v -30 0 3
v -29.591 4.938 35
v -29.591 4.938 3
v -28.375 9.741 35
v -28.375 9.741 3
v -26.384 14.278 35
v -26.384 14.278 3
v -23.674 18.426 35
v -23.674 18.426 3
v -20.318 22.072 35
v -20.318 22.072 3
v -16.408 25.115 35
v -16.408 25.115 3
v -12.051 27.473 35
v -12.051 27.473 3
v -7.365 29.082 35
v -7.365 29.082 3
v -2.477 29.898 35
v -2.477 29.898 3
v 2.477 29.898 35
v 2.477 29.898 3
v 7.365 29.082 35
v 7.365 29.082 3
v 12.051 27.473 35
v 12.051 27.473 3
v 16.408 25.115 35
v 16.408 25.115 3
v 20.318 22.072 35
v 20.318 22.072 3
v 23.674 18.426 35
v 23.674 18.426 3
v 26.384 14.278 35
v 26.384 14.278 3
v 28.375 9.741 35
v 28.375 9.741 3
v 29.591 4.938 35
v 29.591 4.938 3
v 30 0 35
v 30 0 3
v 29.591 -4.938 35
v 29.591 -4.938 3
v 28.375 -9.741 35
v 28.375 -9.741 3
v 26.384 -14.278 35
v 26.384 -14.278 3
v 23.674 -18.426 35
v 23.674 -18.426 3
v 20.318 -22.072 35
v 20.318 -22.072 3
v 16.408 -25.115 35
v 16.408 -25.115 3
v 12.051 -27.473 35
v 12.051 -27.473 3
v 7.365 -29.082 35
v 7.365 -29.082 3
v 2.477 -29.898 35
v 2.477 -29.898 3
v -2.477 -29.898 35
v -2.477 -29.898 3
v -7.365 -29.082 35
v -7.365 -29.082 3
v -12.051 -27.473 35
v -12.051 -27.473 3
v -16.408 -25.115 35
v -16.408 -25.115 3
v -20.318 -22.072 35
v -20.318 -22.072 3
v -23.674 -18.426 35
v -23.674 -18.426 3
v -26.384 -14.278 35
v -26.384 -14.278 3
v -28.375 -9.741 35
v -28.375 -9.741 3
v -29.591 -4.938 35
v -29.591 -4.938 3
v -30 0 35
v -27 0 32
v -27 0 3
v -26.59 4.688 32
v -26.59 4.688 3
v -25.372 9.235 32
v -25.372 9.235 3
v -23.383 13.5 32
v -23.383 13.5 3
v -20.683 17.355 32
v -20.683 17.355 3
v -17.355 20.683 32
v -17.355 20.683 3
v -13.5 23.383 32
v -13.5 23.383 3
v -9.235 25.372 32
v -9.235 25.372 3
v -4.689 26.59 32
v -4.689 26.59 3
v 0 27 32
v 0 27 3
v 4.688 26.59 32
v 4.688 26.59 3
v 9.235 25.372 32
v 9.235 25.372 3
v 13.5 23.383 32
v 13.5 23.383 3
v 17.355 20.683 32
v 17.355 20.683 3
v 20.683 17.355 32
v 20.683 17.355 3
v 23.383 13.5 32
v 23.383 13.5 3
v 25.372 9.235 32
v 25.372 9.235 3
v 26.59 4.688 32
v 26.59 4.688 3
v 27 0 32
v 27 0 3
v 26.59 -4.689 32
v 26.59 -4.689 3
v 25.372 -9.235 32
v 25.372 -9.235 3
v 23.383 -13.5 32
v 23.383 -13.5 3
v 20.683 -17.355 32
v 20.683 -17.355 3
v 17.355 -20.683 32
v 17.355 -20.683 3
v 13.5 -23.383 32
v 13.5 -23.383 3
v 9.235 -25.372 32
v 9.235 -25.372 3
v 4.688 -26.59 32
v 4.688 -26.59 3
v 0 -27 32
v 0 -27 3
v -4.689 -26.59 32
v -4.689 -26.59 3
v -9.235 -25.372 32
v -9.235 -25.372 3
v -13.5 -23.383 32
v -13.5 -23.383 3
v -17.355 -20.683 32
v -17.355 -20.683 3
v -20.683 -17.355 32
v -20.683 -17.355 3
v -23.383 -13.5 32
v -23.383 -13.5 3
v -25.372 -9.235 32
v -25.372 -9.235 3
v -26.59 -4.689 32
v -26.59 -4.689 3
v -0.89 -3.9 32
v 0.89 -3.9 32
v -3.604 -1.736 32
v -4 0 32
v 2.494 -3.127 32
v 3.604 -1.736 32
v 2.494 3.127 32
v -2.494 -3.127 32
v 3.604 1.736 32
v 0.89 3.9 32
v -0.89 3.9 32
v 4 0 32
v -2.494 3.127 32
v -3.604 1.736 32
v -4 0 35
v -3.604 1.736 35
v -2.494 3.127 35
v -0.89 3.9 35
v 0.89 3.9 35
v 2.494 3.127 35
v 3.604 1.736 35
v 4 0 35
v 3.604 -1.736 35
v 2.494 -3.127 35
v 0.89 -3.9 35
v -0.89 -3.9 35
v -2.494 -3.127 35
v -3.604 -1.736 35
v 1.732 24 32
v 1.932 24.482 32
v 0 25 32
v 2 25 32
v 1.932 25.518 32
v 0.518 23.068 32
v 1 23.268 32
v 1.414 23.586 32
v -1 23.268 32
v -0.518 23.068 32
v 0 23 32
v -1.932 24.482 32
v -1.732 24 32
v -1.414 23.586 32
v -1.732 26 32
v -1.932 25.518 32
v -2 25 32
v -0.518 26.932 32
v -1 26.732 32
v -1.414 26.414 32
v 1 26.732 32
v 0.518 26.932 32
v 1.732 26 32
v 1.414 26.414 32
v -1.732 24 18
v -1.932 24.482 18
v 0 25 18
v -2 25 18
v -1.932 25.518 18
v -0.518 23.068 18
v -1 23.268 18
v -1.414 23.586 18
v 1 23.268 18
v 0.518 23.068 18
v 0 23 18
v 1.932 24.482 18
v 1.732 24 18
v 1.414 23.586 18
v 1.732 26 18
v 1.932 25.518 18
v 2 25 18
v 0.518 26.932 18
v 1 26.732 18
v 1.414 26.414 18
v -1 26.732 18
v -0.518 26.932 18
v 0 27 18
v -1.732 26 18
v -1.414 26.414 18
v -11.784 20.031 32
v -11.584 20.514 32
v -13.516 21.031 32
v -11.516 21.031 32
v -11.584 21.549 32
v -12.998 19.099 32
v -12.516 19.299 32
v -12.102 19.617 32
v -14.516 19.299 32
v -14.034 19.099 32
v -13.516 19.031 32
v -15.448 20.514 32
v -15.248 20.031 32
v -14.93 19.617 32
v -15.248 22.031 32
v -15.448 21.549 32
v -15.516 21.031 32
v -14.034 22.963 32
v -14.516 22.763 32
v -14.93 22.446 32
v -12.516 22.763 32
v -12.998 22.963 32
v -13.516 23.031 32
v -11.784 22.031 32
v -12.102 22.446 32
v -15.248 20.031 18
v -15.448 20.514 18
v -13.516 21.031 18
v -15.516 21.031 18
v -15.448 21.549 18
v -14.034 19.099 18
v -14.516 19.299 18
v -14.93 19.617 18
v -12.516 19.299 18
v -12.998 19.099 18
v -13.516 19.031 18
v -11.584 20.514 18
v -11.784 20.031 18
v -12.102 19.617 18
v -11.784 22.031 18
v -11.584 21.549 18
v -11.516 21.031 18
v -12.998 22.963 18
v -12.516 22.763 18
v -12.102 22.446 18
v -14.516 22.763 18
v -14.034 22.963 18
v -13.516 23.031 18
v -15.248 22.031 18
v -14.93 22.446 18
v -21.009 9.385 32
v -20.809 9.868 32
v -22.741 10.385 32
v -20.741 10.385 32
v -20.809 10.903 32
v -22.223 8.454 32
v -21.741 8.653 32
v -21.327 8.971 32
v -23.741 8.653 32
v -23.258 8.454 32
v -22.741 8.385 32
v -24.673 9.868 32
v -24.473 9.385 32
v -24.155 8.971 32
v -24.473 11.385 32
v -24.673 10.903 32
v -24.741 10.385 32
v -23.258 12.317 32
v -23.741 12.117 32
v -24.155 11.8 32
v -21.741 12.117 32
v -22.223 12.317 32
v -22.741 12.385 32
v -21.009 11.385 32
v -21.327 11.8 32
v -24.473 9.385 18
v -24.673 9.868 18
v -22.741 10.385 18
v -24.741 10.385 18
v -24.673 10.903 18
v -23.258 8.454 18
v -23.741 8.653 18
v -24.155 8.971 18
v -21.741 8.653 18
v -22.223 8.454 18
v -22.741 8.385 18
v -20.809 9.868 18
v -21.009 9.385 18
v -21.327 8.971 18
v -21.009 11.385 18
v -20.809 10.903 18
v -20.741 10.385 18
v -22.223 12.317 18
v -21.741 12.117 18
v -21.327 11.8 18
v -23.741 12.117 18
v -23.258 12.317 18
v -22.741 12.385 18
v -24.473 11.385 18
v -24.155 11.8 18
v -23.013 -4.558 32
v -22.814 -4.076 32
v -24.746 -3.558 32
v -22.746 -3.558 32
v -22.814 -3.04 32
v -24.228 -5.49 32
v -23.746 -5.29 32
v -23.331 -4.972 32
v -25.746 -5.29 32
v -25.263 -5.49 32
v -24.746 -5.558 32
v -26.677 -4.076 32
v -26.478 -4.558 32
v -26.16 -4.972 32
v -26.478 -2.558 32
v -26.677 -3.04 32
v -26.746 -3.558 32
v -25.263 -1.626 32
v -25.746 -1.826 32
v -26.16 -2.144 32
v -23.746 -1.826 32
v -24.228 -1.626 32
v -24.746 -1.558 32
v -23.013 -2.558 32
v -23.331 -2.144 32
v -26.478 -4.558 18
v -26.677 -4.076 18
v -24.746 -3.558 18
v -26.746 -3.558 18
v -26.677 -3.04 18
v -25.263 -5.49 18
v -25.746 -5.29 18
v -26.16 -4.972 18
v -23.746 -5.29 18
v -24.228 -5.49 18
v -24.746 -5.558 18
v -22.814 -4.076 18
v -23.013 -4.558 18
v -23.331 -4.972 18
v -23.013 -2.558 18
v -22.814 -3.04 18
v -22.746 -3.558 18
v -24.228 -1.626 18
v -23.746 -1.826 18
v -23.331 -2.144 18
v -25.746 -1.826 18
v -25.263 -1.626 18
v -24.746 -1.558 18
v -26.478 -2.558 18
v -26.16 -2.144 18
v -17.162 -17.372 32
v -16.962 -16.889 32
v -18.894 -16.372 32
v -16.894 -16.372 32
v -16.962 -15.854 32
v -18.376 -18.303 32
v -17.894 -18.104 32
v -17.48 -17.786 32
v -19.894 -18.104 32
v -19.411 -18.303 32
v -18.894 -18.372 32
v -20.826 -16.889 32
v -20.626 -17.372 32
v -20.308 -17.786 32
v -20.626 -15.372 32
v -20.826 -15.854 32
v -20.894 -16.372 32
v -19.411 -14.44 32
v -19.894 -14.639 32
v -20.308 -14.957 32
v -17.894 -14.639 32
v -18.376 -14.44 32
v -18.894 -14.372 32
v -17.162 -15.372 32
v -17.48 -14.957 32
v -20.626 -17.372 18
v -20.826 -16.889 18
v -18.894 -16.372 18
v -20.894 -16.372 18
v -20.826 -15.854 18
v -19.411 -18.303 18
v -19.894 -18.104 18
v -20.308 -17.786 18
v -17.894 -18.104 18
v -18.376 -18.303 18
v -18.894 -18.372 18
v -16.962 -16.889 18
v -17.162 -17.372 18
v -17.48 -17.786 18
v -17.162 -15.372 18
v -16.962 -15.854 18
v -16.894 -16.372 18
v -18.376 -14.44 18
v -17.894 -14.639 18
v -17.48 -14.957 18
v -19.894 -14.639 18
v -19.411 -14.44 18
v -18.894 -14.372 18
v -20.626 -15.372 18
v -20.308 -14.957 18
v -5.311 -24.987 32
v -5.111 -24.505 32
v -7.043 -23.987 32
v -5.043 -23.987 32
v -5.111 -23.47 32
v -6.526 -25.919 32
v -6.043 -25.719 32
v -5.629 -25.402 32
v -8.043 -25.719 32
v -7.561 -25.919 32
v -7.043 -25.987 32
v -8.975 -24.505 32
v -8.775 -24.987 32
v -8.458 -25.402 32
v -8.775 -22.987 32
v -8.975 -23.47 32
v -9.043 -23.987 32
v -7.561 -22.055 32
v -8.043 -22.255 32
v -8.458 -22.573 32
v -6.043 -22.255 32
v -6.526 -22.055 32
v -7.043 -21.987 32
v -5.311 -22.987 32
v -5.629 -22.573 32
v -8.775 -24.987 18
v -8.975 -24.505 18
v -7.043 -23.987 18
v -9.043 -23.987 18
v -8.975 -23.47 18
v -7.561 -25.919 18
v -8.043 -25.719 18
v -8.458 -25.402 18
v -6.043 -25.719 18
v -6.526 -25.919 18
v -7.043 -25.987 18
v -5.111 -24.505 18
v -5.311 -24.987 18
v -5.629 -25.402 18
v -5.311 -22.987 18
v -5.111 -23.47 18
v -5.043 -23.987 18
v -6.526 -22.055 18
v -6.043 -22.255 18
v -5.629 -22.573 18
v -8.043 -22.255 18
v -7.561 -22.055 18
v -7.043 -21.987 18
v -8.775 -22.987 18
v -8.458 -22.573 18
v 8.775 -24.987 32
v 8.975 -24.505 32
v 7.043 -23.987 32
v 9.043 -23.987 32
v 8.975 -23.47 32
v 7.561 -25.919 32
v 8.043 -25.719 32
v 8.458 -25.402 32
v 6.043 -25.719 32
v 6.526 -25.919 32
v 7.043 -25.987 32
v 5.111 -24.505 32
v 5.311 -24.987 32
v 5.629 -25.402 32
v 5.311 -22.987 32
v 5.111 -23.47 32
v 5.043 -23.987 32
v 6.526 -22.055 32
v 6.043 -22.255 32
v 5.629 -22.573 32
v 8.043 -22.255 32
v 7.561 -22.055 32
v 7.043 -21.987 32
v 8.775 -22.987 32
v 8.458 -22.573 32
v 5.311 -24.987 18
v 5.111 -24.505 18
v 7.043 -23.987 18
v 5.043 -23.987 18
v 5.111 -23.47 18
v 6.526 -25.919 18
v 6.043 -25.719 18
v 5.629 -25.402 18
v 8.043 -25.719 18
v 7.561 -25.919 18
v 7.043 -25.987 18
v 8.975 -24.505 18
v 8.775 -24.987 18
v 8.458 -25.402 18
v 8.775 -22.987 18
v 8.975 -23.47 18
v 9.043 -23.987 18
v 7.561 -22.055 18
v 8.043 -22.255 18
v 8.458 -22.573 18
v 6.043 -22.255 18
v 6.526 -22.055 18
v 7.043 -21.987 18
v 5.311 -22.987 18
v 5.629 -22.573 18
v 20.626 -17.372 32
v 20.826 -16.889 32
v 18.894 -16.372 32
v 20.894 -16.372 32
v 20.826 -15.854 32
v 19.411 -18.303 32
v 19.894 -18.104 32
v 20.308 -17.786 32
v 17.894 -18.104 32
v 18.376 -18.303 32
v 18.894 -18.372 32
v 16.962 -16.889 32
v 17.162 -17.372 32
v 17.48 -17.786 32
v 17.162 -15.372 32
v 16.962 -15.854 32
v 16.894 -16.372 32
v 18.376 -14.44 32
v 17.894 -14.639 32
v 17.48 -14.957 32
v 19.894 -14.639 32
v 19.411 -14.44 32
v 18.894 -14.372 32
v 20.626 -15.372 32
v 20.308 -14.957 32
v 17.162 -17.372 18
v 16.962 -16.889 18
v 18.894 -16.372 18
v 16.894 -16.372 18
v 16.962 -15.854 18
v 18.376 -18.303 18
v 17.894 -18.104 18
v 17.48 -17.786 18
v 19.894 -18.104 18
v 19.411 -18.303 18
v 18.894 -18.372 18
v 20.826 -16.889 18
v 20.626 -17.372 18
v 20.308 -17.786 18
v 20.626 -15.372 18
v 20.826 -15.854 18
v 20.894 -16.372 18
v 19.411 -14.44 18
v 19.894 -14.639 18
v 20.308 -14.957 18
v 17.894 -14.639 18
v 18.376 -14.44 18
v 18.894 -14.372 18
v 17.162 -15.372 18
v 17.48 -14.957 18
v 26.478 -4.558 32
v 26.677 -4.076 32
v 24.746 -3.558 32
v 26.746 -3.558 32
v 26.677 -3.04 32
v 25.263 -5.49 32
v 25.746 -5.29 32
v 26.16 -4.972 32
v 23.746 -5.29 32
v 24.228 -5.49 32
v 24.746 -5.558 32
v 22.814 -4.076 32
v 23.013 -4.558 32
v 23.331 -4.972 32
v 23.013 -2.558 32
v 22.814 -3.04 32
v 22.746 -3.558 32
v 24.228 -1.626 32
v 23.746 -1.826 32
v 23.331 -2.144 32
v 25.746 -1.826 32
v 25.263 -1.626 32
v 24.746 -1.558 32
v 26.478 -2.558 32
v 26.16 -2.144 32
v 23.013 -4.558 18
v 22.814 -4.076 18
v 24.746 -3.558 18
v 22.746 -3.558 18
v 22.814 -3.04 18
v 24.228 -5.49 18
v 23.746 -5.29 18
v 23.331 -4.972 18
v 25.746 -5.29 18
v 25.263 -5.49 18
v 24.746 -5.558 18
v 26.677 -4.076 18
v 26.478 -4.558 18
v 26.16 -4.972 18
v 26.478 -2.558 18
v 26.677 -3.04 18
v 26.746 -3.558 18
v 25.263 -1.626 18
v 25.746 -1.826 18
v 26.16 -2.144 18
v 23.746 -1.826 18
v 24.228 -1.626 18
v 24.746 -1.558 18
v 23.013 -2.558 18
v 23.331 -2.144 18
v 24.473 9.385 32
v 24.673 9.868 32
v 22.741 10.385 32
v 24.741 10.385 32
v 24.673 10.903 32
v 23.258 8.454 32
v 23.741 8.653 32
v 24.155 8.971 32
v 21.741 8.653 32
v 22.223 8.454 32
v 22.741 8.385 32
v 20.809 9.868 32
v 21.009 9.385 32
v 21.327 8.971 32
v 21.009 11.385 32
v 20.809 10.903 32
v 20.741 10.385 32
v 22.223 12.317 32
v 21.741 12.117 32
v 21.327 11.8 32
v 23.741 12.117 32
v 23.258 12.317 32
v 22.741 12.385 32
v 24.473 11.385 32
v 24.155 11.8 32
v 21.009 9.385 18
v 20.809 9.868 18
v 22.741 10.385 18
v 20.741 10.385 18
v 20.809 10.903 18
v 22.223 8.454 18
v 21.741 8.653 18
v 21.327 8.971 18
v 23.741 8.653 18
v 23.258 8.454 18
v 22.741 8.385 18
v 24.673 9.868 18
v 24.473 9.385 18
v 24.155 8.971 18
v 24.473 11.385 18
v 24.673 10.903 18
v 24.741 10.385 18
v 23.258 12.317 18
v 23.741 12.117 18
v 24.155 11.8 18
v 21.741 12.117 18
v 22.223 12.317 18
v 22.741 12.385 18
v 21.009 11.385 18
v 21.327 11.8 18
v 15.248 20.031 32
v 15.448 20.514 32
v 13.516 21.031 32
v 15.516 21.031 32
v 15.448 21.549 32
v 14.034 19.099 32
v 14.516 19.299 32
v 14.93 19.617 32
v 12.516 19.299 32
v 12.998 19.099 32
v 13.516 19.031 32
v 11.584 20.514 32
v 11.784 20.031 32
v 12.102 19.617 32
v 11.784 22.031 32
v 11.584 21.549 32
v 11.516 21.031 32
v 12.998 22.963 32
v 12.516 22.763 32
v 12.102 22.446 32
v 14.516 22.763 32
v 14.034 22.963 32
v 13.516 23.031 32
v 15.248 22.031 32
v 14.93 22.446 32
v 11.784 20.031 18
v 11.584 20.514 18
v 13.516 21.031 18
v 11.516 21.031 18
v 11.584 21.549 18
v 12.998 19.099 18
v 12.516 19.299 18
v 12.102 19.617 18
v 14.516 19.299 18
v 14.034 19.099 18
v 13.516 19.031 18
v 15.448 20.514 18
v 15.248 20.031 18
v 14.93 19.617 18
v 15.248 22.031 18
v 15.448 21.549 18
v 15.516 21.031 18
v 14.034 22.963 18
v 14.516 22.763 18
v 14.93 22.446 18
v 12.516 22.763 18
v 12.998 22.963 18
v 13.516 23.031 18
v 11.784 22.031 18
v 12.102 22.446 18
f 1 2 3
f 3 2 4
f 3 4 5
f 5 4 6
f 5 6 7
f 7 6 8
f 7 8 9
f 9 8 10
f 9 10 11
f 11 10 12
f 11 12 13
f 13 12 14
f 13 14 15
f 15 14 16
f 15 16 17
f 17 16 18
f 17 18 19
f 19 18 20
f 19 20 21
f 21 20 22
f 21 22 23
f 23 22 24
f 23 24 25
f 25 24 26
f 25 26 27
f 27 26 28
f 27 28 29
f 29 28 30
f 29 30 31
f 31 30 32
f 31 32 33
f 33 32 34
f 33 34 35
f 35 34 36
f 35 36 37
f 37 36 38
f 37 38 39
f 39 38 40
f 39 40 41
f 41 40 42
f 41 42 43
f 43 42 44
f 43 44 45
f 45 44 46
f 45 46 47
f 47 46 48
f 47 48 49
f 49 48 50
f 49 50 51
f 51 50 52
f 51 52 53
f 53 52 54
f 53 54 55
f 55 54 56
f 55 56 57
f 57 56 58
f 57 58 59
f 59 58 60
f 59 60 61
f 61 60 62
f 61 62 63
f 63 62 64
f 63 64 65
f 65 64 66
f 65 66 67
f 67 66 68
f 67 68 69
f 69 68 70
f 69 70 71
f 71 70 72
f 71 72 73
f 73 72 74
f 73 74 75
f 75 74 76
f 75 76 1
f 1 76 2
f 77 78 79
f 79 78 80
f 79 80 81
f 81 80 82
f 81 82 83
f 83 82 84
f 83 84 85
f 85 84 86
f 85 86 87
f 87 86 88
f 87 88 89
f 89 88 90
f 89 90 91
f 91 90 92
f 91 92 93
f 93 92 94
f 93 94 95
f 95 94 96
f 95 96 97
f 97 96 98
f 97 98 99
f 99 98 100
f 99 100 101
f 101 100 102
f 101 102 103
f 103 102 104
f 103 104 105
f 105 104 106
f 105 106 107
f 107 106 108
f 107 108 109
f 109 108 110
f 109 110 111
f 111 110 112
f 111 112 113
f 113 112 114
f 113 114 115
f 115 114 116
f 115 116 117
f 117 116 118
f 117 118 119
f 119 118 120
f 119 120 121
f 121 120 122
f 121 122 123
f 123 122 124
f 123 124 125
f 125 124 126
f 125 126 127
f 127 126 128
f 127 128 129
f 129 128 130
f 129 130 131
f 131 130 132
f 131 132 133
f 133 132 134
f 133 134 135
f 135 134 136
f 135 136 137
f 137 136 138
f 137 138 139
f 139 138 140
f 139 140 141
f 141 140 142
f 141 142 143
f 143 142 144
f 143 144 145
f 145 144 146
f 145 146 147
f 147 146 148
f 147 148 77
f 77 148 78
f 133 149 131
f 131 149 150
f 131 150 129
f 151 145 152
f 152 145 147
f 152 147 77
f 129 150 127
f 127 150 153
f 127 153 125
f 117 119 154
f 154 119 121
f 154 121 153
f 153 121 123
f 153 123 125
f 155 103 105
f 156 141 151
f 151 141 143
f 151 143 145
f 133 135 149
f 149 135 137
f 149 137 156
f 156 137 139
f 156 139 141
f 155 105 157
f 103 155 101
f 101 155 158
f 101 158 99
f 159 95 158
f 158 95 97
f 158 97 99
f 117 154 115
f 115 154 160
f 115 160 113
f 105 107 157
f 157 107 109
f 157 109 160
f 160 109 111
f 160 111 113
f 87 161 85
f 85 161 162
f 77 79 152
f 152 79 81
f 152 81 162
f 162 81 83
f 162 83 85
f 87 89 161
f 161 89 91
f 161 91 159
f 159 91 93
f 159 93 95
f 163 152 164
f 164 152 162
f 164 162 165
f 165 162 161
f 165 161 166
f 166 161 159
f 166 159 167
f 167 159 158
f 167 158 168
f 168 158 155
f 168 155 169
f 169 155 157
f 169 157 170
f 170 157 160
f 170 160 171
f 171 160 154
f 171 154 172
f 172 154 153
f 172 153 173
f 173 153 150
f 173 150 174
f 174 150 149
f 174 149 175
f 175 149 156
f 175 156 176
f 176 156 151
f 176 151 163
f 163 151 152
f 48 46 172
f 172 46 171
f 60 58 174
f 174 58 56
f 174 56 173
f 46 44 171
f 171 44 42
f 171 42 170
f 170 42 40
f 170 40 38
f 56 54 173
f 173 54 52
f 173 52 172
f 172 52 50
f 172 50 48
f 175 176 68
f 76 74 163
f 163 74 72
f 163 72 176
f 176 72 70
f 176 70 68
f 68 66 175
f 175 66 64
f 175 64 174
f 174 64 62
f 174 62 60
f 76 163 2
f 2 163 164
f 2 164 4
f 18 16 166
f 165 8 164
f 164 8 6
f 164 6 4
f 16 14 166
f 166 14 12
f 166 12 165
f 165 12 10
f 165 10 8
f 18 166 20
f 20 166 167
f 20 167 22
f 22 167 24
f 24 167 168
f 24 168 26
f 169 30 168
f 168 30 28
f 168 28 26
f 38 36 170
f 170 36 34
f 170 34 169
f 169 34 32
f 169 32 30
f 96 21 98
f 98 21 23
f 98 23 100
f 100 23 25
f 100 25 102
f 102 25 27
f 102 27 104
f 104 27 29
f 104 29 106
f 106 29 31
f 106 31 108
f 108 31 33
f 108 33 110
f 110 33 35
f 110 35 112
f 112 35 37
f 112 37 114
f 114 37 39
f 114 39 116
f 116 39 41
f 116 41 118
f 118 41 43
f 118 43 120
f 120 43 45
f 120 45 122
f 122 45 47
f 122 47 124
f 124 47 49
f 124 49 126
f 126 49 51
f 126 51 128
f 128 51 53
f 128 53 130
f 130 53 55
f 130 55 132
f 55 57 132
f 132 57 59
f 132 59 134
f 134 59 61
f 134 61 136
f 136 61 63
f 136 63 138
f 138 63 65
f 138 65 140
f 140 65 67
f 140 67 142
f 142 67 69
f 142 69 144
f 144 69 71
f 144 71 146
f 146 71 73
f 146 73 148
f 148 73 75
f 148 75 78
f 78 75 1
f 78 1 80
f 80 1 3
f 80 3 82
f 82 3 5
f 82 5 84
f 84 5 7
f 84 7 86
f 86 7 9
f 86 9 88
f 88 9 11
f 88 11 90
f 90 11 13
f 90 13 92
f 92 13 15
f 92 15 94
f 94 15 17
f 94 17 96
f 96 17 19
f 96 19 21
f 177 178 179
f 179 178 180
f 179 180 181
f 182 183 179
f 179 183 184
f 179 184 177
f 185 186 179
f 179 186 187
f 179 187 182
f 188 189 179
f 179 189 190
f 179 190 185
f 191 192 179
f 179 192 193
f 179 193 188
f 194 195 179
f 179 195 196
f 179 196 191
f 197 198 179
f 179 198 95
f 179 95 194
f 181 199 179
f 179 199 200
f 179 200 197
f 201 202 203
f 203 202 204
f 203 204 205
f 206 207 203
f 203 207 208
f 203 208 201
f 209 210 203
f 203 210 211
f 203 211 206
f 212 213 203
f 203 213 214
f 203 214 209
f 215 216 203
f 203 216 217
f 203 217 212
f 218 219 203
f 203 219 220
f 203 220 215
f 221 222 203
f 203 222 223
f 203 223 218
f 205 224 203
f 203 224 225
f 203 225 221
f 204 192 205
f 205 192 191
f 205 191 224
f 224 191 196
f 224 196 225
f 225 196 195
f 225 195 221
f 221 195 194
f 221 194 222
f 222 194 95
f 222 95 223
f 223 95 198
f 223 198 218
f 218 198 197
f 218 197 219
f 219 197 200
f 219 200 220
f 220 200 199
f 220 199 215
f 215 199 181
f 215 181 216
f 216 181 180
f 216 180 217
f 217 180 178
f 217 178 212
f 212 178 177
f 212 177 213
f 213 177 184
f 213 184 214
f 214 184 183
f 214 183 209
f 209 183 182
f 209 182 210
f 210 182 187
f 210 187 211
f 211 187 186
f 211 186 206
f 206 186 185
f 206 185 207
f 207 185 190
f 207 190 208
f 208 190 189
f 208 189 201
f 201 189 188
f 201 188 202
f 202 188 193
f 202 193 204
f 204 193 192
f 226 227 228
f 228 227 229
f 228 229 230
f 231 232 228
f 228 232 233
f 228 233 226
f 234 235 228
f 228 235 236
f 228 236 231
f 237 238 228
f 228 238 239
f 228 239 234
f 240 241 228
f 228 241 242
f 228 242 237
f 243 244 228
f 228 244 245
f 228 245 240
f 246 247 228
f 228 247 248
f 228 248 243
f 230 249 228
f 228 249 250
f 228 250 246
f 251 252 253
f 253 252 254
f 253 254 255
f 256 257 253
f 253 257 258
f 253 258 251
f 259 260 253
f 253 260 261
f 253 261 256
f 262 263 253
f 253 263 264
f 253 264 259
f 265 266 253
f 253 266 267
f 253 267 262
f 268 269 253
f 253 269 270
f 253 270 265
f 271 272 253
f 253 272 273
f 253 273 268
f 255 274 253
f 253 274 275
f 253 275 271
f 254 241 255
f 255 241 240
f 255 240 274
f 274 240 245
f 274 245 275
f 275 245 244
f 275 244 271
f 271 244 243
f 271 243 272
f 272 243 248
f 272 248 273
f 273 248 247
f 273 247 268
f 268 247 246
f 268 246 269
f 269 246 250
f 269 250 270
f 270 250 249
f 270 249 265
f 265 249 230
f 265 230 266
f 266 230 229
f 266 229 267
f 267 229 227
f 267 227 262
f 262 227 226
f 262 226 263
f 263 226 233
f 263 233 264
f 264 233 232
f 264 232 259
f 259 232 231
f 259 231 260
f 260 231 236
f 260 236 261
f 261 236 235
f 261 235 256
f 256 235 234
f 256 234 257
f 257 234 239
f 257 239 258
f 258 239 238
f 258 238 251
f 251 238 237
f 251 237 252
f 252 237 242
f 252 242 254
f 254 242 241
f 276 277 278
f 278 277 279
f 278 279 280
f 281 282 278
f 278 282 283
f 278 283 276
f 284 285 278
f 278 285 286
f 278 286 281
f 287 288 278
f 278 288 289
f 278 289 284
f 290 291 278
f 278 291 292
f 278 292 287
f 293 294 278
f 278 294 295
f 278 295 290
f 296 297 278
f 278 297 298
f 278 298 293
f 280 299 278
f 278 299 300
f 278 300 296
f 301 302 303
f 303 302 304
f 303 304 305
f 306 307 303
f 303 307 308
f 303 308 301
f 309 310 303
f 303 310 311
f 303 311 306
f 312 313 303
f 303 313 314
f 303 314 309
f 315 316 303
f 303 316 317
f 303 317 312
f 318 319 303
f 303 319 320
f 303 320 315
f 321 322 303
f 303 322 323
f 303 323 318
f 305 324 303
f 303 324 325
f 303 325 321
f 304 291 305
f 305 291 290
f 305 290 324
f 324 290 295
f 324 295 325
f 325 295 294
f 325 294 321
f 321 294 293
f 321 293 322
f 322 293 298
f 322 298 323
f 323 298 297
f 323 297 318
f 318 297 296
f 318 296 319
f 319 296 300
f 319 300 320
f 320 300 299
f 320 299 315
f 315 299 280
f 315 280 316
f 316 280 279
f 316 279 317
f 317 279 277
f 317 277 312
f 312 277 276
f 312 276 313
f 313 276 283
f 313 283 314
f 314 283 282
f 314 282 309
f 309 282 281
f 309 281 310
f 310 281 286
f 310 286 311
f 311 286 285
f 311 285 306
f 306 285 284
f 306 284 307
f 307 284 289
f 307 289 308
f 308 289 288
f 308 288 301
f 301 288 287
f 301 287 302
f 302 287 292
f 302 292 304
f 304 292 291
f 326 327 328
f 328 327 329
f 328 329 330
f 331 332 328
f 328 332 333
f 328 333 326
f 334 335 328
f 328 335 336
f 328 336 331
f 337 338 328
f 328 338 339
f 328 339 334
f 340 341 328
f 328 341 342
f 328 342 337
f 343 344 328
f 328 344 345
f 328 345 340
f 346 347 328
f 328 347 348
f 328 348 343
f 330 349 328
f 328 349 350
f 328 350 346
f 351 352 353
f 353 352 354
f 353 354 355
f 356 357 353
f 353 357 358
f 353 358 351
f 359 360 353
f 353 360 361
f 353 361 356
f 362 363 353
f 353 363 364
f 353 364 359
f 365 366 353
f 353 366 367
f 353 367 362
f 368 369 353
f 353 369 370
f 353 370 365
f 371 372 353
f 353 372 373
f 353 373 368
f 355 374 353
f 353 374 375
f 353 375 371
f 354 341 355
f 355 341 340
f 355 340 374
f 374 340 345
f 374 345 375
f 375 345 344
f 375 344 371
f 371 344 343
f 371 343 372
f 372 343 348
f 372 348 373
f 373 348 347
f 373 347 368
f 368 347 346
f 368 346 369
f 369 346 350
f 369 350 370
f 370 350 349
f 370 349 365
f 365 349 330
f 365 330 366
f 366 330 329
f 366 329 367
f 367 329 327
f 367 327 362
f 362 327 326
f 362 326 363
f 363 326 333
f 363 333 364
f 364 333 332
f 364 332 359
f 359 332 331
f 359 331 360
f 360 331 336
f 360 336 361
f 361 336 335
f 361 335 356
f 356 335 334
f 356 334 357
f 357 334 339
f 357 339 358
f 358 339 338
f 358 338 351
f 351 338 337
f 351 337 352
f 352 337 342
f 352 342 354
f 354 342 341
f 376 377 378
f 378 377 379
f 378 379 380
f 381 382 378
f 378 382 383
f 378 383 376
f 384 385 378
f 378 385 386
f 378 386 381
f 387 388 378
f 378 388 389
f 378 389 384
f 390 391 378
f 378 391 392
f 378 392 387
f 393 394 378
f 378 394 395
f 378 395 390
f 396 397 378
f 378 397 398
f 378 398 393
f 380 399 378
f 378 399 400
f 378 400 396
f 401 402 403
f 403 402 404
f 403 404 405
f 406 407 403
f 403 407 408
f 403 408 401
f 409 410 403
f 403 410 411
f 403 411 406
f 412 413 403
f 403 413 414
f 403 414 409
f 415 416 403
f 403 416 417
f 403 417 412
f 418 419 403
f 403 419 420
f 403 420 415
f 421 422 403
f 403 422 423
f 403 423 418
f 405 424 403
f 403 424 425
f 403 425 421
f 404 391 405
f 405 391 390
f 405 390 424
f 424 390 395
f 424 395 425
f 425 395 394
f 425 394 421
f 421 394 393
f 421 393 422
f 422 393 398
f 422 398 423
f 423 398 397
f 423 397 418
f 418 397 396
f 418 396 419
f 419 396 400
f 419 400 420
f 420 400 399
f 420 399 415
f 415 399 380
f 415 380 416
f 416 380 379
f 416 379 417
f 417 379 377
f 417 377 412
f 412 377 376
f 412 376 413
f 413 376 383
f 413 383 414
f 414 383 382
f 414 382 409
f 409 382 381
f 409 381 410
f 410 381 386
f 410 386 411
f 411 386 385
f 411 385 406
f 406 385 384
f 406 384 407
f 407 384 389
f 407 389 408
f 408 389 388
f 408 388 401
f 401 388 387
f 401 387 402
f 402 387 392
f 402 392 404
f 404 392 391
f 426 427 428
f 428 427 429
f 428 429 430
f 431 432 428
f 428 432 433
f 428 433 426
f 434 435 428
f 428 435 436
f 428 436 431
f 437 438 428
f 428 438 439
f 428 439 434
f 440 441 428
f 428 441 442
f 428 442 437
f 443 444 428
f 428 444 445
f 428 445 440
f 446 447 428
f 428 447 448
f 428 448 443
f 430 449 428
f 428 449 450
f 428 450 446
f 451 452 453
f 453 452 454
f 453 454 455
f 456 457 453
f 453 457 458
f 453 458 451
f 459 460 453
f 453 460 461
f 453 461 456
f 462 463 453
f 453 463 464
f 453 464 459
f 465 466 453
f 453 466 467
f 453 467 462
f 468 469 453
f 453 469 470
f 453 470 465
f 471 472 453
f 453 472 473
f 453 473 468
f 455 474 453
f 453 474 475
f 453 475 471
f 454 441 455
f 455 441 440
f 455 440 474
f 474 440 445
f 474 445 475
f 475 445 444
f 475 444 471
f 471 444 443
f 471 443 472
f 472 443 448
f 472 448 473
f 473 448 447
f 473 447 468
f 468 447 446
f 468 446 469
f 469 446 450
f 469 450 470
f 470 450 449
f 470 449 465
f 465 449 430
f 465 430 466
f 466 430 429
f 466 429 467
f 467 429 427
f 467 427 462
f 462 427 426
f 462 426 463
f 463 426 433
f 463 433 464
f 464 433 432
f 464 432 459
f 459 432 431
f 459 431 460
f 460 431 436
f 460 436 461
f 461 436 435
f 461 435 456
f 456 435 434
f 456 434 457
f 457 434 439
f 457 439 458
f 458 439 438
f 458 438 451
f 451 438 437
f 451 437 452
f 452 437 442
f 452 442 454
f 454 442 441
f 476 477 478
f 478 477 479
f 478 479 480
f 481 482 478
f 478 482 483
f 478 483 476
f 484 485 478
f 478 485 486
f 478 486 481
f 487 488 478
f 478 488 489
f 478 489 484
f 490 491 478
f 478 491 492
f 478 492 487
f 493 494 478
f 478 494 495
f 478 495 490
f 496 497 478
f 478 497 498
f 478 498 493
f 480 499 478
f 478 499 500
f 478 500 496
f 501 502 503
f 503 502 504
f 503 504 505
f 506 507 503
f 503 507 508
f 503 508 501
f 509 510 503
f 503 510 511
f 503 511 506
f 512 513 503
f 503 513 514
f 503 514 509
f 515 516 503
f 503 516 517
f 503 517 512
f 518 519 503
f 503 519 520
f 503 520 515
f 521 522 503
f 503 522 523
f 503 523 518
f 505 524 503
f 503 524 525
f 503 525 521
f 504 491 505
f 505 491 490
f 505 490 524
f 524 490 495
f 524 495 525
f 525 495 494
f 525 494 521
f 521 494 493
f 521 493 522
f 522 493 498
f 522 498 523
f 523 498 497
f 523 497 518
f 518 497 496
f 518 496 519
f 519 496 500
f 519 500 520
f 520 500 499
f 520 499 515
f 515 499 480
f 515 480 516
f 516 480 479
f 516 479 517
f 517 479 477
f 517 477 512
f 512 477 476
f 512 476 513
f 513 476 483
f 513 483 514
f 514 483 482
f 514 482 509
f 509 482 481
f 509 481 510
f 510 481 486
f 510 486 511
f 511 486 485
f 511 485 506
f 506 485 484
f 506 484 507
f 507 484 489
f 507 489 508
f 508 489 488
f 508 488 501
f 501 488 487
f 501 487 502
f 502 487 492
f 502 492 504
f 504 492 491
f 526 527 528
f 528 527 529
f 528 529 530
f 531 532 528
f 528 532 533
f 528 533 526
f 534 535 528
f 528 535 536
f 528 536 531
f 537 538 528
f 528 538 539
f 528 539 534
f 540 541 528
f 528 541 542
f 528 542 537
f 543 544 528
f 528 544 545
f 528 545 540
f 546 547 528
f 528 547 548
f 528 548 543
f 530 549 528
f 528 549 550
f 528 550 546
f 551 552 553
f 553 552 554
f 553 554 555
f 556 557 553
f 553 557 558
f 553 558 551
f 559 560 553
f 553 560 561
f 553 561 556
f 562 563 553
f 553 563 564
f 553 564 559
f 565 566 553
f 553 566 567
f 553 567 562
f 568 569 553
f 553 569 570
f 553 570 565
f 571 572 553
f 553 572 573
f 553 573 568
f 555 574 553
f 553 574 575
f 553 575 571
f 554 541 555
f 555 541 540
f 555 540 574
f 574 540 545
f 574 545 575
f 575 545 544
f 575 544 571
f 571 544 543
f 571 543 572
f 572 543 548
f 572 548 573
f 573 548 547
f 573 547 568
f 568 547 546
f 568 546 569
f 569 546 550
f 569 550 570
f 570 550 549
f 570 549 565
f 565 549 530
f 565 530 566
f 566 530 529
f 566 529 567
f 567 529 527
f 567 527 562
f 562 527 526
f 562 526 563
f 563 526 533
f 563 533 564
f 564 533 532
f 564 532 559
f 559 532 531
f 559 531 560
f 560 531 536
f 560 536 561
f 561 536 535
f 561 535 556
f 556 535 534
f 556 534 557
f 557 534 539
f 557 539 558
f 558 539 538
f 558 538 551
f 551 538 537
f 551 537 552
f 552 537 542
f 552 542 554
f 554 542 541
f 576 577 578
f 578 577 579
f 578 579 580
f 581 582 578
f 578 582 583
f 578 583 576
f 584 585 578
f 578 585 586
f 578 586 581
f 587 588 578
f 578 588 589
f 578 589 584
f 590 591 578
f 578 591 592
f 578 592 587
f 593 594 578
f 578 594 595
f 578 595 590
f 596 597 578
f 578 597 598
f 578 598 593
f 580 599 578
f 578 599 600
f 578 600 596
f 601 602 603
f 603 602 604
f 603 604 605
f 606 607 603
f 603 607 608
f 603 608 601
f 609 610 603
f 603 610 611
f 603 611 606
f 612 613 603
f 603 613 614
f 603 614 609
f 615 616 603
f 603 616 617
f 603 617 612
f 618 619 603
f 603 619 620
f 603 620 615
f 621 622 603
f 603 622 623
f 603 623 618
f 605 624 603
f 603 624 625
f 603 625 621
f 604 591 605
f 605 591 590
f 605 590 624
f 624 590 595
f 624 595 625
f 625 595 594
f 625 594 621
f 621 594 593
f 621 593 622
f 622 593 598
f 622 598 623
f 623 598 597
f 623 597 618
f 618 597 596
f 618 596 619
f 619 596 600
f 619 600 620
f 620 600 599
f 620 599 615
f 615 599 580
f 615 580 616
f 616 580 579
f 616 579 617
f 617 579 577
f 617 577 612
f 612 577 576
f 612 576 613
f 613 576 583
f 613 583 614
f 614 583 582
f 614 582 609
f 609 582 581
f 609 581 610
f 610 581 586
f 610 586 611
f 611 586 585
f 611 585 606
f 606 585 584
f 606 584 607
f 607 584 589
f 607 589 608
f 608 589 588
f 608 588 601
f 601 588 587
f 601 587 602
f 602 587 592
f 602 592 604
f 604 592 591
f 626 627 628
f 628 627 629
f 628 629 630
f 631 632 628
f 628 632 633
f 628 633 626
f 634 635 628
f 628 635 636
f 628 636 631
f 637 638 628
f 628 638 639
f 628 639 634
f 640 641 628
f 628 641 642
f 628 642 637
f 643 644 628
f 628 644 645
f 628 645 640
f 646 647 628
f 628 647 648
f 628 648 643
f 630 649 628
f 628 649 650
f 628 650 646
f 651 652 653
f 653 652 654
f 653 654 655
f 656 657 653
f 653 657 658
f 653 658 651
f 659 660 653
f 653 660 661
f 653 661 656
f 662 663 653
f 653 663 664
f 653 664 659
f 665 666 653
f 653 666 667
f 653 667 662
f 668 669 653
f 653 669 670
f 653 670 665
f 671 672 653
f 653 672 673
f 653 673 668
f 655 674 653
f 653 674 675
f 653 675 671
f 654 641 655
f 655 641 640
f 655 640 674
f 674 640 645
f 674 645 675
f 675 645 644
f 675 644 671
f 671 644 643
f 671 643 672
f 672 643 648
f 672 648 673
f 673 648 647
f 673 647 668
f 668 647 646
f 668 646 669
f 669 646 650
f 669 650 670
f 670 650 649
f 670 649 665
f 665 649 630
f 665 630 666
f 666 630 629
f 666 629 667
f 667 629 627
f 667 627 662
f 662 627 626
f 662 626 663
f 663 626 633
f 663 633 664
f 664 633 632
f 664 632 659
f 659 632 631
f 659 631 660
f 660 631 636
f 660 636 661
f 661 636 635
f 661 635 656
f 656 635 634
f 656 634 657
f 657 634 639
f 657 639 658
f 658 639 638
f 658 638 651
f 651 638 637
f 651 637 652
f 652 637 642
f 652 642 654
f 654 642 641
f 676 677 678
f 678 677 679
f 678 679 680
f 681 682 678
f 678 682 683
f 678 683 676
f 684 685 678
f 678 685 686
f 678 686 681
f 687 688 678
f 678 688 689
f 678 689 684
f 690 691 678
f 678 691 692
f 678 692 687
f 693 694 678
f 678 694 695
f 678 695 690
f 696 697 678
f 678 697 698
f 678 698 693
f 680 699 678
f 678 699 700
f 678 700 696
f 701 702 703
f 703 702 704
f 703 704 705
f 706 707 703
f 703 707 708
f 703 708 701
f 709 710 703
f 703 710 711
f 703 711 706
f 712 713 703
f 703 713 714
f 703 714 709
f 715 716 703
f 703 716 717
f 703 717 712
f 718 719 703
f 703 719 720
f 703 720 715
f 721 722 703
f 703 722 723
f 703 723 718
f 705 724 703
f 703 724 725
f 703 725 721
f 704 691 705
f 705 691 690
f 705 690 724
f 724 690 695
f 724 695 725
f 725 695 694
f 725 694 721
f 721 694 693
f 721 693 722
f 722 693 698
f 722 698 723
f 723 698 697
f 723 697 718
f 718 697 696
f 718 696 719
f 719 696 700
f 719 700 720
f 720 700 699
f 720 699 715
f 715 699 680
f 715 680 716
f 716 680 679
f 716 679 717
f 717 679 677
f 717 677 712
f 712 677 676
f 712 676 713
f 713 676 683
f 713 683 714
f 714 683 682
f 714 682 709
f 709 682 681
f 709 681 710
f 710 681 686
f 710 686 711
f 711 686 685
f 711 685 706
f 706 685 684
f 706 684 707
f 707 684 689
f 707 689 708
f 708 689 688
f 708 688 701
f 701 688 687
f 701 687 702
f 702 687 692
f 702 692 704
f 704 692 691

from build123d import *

# Parameters (mm, degrees)
SKETCH1_R               = 30
BOSS_EXTRUDE1_DEPTH     = 35
SHELL3_T                = 3
CUT_EXTRUDE2_DEPTH      = 56
CUT_EXTRUDE2_DEPTH_BACK = 56
SKETCH3_R               = 4
CUT_EXTRUDE3_DEPTH      = 56
CUT_EXTRUDE3_DEPTH_BACK = 3
SKETCH4_R               = 30
BOSS_EXTRUDE2_START     = -18
SKETCH2_R               = 2
BOSS_EXTRUDE2_DEPTH     = 14
BOSS_EXTRUDE2_2_DEPTH   = 14
BOSS_EXTRUDE2_3_DEPTH   = 14
BOSS_EXTRUDE2_4_DEPTH   = 14
BOSS_EXTRUDE2_5_DEPTH   = 14
BOSS_EXTRUDE2_6_DEPTH   = 14
BOSS_EXTRUDE2_7_DEPTH   = 14
BOSS_EXTRUDE2_8_DEPTH   = 14
BOSS_EXTRUDE2_9_DEPTH   = 14
BOSS_EXTRUDE2_10_DEPTH  = 14
BOSS_EXTRUDE2_11_DEPTH  = 14


with BuildPart() as part:
    # Sketch1 → Boss-Extrude1 (new body)
    with BuildSketch(Plane.XY):
        Circle(SKETCH1_R)
    extrude(amount=BOSS_EXTRUDE1_DEPTH)

    # Shell3 (no face opened: a closed hollow body)
    add(offset(amount=-SHELL3_T, mode=Mode.PRIVATE), mode=Mode.SUBTRACT)

    # Sketch3 → Cut-Extrude2 (cut, two sides: drawn at the far end of the back side and taken through both)
    with BuildSketch(Plane(origin=(0, 0, 0), x_dir=(-1, 0, 0), z_dir=(0, 0, -1)).offset(-CUT_EXTRUDE2_DEPTH_BACK)):
        with Locations(Location((0, 0, 0), (0, 0, 180))):
            Circle(SKETCH3_R)
    extrude(amount=CUT_EXTRUDE2_DEPTH + CUT_EXTRUDE2_DEPTH_BACK, mode=Mode.SUBTRACT)

    # Sketch4 → Cut-Extrude3 (cut, two sides: drawn at the far end of the back side and taken through both)
    with BuildSketch(Plane(origin=(0, 0, 0), x_dir=(-1, 0, 0), z_dir=(0, 0, -1)).offset(-CUT_EXTRUDE3_DEPTH_BACK)):
        Circle(SKETCH4_R)
    extrude(amount=CUT_EXTRUDE3_DEPTH + CUT_EXTRUDE3_DEPTH_BACK, mode=Mode.SUBTRACT)


with BuildPart() as body_2:
    # Sketch2 → Boss-Extrude2 (new body)
    with BuildSketch(Plane(origin=(0, 0, 0), x_dir=(-1, 0, 0), z_dir=(0, 0, -1)).offset(BOSS_EXTRUDE2_START)):
        with Locations((0, 25)):
            Circle(SKETCH2_R)
    extrude(amount=-BOSS_EXTRUDE2_DEPTH)


with BuildPart() as body_3:
    # Sketch2 → Boss-Extrude2 2 (new body)
    with BuildSketch(Plane(origin=(0, 0, 0), x_dir=(-1, 0, 0), z_dir=(0, 0, -1)).offset(BOSS_EXTRUDE2_START)):
        with Locations((13.516020436, 21.031338321)):
            Circle(SKETCH2_R)
    extrude(amount=-BOSS_EXTRUDE2_2_DEPTH)


with BuildPart() as body_4:
    # Sketch2 → Boss-Extrude2 3 (new body)
    with BuildSketch(Plane(origin=(0, 0, 0), x_dir=(-1, 0, 0), z_dir=(0, 0, -1)).offset(BOSS_EXTRUDE2_START)):
        with Locations((22.740799884, 10.385375325)):
            Circle(SKETCH2_R)
    extrude(amount=-BOSS_EXTRUDE2_3_DEPTH)


with BuildPart() as body_5:
    # Sketch2 → Boss-Extrude2 4 (new body)
    with BuildSketch(Plane(origin=(0, 0, 0), x_dir=(-1, 0, 0), z_dir=(0, 0, -1)).offset(BOSS_EXTRUDE2_START)):
        with Locations((24.745536047, -3.557870957)):
            Circle(SKETCH2_R)
    extrude(amount=-BOSS_EXTRUDE2_4_DEPTH)


with BuildPart() as body_6:
    # Sketch2 → Boss-Extrude2 5 (new body)
    with BuildSketch(Plane(origin=(0, 0, 0), x_dir=(-1, 0, 0), z_dir=(0, 0, -1)).offset(BOSS_EXTRUDE2_START)):
        with Locations((18.893739359, -16.371518349)):
            Circle(SKETCH2_R)
    extrude(amount=-BOSS_EXTRUDE2_5_DEPTH)


with BuildPart() as body_7:
    # Sketch2 → Boss-Extrude2 6 (new body)
    with BuildSketch(Plane(origin=(0, 0, 0), x_dir=(-1, 0, 0), z_dir=(0, 0, -1)).offset(BOSS_EXTRUDE2_START)):
        with Locations((7.043313921, -23.98732434)):
            Circle(SKETCH2_R)
    extrude(amount=-BOSS_EXTRUDE2_6_DEPTH)


with BuildPart() as body_8:
    # Sketch2 → Boss-Extrude2 7 (new body)
    with BuildSketch(Plane(origin=(0, 0, 0), x_dir=(-1, 0, 0), z_dir=(0, 0, -1)).offset(BOSS_EXTRUDE2_START)):
        with Locations((-7.043313921, -23.98732434)):
            Circle(SKETCH2_R)
    extrude(amount=-BOSS_EXTRUDE2_7_DEPTH)


with BuildPart() as body_9:
    # Sketch2 → Boss-Extrude2 8 (new body)
    with BuildSketch(Plane(origin=(0, 0, 0), x_dir=(-1, 0, 0), z_dir=(0, 0, -1)).offset(BOSS_EXTRUDE2_START)):
        with Locations((-18.893739359, -16.371518349)):
            Circle(SKETCH2_R)
    extrude(amount=-BOSS_EXTRUDE2_8_DEPTH)


with BuildPart() as body_10:
    # Sketch2 → Boss-Extrude2 9 (new body)
    with BuildSketch(Plane(origin=(0, 0, 0), x_dir=(-1, 0, 0), z_dir=(0, 0, -1)).offset(BOSS_EXTRUDE2_START)):
        with Locations((-24.745536047, -3.557870957)):
            Circle(SKETCH2_R)
    extrude(amount=-BOSS_EXTRUDE2_9_DEPTH)


with BuildPart() as body_11:
    # Sketch2 → Boss-Extrude2 10 (new body)
    with BuildSketch(Plane(origin=(0, 0, 0), x_dir=(-1, 0, 0), z_dir=(0, 0, -1)).offset(BOSS_EXTRUDE2_START)):
        with Locations((-22.740799884, 10.385375325)):
            Circle(SKETCH2_R)
    extrude(amount=-BOSS_EXTRUDE2_10_DEPTH)


with BuildPart() as body_12:
    # Sketch2 → Boss-Extrude2 11 (new body)
    with BuildSketch(Plane(origin=(0, 0, 0), x_dir=(-1, 0, 0), z_dir=(0, 0, -1)).offset(BOSS_EXTRUDE2_START)):
        with Locations((-13.516020436, 21.031338321)):
            Circle(SKETCH2_R)
    extrude(amount=-BOSS_EXTRUDE2_11_DEPTH)


solid = Compound([part.part, body_2.part, body_3.part, body_4.part, body_5.part, body_6.part, body_7.part, body_8.part, body_9.part, body_10.part, body_11.part, body_12.part])
